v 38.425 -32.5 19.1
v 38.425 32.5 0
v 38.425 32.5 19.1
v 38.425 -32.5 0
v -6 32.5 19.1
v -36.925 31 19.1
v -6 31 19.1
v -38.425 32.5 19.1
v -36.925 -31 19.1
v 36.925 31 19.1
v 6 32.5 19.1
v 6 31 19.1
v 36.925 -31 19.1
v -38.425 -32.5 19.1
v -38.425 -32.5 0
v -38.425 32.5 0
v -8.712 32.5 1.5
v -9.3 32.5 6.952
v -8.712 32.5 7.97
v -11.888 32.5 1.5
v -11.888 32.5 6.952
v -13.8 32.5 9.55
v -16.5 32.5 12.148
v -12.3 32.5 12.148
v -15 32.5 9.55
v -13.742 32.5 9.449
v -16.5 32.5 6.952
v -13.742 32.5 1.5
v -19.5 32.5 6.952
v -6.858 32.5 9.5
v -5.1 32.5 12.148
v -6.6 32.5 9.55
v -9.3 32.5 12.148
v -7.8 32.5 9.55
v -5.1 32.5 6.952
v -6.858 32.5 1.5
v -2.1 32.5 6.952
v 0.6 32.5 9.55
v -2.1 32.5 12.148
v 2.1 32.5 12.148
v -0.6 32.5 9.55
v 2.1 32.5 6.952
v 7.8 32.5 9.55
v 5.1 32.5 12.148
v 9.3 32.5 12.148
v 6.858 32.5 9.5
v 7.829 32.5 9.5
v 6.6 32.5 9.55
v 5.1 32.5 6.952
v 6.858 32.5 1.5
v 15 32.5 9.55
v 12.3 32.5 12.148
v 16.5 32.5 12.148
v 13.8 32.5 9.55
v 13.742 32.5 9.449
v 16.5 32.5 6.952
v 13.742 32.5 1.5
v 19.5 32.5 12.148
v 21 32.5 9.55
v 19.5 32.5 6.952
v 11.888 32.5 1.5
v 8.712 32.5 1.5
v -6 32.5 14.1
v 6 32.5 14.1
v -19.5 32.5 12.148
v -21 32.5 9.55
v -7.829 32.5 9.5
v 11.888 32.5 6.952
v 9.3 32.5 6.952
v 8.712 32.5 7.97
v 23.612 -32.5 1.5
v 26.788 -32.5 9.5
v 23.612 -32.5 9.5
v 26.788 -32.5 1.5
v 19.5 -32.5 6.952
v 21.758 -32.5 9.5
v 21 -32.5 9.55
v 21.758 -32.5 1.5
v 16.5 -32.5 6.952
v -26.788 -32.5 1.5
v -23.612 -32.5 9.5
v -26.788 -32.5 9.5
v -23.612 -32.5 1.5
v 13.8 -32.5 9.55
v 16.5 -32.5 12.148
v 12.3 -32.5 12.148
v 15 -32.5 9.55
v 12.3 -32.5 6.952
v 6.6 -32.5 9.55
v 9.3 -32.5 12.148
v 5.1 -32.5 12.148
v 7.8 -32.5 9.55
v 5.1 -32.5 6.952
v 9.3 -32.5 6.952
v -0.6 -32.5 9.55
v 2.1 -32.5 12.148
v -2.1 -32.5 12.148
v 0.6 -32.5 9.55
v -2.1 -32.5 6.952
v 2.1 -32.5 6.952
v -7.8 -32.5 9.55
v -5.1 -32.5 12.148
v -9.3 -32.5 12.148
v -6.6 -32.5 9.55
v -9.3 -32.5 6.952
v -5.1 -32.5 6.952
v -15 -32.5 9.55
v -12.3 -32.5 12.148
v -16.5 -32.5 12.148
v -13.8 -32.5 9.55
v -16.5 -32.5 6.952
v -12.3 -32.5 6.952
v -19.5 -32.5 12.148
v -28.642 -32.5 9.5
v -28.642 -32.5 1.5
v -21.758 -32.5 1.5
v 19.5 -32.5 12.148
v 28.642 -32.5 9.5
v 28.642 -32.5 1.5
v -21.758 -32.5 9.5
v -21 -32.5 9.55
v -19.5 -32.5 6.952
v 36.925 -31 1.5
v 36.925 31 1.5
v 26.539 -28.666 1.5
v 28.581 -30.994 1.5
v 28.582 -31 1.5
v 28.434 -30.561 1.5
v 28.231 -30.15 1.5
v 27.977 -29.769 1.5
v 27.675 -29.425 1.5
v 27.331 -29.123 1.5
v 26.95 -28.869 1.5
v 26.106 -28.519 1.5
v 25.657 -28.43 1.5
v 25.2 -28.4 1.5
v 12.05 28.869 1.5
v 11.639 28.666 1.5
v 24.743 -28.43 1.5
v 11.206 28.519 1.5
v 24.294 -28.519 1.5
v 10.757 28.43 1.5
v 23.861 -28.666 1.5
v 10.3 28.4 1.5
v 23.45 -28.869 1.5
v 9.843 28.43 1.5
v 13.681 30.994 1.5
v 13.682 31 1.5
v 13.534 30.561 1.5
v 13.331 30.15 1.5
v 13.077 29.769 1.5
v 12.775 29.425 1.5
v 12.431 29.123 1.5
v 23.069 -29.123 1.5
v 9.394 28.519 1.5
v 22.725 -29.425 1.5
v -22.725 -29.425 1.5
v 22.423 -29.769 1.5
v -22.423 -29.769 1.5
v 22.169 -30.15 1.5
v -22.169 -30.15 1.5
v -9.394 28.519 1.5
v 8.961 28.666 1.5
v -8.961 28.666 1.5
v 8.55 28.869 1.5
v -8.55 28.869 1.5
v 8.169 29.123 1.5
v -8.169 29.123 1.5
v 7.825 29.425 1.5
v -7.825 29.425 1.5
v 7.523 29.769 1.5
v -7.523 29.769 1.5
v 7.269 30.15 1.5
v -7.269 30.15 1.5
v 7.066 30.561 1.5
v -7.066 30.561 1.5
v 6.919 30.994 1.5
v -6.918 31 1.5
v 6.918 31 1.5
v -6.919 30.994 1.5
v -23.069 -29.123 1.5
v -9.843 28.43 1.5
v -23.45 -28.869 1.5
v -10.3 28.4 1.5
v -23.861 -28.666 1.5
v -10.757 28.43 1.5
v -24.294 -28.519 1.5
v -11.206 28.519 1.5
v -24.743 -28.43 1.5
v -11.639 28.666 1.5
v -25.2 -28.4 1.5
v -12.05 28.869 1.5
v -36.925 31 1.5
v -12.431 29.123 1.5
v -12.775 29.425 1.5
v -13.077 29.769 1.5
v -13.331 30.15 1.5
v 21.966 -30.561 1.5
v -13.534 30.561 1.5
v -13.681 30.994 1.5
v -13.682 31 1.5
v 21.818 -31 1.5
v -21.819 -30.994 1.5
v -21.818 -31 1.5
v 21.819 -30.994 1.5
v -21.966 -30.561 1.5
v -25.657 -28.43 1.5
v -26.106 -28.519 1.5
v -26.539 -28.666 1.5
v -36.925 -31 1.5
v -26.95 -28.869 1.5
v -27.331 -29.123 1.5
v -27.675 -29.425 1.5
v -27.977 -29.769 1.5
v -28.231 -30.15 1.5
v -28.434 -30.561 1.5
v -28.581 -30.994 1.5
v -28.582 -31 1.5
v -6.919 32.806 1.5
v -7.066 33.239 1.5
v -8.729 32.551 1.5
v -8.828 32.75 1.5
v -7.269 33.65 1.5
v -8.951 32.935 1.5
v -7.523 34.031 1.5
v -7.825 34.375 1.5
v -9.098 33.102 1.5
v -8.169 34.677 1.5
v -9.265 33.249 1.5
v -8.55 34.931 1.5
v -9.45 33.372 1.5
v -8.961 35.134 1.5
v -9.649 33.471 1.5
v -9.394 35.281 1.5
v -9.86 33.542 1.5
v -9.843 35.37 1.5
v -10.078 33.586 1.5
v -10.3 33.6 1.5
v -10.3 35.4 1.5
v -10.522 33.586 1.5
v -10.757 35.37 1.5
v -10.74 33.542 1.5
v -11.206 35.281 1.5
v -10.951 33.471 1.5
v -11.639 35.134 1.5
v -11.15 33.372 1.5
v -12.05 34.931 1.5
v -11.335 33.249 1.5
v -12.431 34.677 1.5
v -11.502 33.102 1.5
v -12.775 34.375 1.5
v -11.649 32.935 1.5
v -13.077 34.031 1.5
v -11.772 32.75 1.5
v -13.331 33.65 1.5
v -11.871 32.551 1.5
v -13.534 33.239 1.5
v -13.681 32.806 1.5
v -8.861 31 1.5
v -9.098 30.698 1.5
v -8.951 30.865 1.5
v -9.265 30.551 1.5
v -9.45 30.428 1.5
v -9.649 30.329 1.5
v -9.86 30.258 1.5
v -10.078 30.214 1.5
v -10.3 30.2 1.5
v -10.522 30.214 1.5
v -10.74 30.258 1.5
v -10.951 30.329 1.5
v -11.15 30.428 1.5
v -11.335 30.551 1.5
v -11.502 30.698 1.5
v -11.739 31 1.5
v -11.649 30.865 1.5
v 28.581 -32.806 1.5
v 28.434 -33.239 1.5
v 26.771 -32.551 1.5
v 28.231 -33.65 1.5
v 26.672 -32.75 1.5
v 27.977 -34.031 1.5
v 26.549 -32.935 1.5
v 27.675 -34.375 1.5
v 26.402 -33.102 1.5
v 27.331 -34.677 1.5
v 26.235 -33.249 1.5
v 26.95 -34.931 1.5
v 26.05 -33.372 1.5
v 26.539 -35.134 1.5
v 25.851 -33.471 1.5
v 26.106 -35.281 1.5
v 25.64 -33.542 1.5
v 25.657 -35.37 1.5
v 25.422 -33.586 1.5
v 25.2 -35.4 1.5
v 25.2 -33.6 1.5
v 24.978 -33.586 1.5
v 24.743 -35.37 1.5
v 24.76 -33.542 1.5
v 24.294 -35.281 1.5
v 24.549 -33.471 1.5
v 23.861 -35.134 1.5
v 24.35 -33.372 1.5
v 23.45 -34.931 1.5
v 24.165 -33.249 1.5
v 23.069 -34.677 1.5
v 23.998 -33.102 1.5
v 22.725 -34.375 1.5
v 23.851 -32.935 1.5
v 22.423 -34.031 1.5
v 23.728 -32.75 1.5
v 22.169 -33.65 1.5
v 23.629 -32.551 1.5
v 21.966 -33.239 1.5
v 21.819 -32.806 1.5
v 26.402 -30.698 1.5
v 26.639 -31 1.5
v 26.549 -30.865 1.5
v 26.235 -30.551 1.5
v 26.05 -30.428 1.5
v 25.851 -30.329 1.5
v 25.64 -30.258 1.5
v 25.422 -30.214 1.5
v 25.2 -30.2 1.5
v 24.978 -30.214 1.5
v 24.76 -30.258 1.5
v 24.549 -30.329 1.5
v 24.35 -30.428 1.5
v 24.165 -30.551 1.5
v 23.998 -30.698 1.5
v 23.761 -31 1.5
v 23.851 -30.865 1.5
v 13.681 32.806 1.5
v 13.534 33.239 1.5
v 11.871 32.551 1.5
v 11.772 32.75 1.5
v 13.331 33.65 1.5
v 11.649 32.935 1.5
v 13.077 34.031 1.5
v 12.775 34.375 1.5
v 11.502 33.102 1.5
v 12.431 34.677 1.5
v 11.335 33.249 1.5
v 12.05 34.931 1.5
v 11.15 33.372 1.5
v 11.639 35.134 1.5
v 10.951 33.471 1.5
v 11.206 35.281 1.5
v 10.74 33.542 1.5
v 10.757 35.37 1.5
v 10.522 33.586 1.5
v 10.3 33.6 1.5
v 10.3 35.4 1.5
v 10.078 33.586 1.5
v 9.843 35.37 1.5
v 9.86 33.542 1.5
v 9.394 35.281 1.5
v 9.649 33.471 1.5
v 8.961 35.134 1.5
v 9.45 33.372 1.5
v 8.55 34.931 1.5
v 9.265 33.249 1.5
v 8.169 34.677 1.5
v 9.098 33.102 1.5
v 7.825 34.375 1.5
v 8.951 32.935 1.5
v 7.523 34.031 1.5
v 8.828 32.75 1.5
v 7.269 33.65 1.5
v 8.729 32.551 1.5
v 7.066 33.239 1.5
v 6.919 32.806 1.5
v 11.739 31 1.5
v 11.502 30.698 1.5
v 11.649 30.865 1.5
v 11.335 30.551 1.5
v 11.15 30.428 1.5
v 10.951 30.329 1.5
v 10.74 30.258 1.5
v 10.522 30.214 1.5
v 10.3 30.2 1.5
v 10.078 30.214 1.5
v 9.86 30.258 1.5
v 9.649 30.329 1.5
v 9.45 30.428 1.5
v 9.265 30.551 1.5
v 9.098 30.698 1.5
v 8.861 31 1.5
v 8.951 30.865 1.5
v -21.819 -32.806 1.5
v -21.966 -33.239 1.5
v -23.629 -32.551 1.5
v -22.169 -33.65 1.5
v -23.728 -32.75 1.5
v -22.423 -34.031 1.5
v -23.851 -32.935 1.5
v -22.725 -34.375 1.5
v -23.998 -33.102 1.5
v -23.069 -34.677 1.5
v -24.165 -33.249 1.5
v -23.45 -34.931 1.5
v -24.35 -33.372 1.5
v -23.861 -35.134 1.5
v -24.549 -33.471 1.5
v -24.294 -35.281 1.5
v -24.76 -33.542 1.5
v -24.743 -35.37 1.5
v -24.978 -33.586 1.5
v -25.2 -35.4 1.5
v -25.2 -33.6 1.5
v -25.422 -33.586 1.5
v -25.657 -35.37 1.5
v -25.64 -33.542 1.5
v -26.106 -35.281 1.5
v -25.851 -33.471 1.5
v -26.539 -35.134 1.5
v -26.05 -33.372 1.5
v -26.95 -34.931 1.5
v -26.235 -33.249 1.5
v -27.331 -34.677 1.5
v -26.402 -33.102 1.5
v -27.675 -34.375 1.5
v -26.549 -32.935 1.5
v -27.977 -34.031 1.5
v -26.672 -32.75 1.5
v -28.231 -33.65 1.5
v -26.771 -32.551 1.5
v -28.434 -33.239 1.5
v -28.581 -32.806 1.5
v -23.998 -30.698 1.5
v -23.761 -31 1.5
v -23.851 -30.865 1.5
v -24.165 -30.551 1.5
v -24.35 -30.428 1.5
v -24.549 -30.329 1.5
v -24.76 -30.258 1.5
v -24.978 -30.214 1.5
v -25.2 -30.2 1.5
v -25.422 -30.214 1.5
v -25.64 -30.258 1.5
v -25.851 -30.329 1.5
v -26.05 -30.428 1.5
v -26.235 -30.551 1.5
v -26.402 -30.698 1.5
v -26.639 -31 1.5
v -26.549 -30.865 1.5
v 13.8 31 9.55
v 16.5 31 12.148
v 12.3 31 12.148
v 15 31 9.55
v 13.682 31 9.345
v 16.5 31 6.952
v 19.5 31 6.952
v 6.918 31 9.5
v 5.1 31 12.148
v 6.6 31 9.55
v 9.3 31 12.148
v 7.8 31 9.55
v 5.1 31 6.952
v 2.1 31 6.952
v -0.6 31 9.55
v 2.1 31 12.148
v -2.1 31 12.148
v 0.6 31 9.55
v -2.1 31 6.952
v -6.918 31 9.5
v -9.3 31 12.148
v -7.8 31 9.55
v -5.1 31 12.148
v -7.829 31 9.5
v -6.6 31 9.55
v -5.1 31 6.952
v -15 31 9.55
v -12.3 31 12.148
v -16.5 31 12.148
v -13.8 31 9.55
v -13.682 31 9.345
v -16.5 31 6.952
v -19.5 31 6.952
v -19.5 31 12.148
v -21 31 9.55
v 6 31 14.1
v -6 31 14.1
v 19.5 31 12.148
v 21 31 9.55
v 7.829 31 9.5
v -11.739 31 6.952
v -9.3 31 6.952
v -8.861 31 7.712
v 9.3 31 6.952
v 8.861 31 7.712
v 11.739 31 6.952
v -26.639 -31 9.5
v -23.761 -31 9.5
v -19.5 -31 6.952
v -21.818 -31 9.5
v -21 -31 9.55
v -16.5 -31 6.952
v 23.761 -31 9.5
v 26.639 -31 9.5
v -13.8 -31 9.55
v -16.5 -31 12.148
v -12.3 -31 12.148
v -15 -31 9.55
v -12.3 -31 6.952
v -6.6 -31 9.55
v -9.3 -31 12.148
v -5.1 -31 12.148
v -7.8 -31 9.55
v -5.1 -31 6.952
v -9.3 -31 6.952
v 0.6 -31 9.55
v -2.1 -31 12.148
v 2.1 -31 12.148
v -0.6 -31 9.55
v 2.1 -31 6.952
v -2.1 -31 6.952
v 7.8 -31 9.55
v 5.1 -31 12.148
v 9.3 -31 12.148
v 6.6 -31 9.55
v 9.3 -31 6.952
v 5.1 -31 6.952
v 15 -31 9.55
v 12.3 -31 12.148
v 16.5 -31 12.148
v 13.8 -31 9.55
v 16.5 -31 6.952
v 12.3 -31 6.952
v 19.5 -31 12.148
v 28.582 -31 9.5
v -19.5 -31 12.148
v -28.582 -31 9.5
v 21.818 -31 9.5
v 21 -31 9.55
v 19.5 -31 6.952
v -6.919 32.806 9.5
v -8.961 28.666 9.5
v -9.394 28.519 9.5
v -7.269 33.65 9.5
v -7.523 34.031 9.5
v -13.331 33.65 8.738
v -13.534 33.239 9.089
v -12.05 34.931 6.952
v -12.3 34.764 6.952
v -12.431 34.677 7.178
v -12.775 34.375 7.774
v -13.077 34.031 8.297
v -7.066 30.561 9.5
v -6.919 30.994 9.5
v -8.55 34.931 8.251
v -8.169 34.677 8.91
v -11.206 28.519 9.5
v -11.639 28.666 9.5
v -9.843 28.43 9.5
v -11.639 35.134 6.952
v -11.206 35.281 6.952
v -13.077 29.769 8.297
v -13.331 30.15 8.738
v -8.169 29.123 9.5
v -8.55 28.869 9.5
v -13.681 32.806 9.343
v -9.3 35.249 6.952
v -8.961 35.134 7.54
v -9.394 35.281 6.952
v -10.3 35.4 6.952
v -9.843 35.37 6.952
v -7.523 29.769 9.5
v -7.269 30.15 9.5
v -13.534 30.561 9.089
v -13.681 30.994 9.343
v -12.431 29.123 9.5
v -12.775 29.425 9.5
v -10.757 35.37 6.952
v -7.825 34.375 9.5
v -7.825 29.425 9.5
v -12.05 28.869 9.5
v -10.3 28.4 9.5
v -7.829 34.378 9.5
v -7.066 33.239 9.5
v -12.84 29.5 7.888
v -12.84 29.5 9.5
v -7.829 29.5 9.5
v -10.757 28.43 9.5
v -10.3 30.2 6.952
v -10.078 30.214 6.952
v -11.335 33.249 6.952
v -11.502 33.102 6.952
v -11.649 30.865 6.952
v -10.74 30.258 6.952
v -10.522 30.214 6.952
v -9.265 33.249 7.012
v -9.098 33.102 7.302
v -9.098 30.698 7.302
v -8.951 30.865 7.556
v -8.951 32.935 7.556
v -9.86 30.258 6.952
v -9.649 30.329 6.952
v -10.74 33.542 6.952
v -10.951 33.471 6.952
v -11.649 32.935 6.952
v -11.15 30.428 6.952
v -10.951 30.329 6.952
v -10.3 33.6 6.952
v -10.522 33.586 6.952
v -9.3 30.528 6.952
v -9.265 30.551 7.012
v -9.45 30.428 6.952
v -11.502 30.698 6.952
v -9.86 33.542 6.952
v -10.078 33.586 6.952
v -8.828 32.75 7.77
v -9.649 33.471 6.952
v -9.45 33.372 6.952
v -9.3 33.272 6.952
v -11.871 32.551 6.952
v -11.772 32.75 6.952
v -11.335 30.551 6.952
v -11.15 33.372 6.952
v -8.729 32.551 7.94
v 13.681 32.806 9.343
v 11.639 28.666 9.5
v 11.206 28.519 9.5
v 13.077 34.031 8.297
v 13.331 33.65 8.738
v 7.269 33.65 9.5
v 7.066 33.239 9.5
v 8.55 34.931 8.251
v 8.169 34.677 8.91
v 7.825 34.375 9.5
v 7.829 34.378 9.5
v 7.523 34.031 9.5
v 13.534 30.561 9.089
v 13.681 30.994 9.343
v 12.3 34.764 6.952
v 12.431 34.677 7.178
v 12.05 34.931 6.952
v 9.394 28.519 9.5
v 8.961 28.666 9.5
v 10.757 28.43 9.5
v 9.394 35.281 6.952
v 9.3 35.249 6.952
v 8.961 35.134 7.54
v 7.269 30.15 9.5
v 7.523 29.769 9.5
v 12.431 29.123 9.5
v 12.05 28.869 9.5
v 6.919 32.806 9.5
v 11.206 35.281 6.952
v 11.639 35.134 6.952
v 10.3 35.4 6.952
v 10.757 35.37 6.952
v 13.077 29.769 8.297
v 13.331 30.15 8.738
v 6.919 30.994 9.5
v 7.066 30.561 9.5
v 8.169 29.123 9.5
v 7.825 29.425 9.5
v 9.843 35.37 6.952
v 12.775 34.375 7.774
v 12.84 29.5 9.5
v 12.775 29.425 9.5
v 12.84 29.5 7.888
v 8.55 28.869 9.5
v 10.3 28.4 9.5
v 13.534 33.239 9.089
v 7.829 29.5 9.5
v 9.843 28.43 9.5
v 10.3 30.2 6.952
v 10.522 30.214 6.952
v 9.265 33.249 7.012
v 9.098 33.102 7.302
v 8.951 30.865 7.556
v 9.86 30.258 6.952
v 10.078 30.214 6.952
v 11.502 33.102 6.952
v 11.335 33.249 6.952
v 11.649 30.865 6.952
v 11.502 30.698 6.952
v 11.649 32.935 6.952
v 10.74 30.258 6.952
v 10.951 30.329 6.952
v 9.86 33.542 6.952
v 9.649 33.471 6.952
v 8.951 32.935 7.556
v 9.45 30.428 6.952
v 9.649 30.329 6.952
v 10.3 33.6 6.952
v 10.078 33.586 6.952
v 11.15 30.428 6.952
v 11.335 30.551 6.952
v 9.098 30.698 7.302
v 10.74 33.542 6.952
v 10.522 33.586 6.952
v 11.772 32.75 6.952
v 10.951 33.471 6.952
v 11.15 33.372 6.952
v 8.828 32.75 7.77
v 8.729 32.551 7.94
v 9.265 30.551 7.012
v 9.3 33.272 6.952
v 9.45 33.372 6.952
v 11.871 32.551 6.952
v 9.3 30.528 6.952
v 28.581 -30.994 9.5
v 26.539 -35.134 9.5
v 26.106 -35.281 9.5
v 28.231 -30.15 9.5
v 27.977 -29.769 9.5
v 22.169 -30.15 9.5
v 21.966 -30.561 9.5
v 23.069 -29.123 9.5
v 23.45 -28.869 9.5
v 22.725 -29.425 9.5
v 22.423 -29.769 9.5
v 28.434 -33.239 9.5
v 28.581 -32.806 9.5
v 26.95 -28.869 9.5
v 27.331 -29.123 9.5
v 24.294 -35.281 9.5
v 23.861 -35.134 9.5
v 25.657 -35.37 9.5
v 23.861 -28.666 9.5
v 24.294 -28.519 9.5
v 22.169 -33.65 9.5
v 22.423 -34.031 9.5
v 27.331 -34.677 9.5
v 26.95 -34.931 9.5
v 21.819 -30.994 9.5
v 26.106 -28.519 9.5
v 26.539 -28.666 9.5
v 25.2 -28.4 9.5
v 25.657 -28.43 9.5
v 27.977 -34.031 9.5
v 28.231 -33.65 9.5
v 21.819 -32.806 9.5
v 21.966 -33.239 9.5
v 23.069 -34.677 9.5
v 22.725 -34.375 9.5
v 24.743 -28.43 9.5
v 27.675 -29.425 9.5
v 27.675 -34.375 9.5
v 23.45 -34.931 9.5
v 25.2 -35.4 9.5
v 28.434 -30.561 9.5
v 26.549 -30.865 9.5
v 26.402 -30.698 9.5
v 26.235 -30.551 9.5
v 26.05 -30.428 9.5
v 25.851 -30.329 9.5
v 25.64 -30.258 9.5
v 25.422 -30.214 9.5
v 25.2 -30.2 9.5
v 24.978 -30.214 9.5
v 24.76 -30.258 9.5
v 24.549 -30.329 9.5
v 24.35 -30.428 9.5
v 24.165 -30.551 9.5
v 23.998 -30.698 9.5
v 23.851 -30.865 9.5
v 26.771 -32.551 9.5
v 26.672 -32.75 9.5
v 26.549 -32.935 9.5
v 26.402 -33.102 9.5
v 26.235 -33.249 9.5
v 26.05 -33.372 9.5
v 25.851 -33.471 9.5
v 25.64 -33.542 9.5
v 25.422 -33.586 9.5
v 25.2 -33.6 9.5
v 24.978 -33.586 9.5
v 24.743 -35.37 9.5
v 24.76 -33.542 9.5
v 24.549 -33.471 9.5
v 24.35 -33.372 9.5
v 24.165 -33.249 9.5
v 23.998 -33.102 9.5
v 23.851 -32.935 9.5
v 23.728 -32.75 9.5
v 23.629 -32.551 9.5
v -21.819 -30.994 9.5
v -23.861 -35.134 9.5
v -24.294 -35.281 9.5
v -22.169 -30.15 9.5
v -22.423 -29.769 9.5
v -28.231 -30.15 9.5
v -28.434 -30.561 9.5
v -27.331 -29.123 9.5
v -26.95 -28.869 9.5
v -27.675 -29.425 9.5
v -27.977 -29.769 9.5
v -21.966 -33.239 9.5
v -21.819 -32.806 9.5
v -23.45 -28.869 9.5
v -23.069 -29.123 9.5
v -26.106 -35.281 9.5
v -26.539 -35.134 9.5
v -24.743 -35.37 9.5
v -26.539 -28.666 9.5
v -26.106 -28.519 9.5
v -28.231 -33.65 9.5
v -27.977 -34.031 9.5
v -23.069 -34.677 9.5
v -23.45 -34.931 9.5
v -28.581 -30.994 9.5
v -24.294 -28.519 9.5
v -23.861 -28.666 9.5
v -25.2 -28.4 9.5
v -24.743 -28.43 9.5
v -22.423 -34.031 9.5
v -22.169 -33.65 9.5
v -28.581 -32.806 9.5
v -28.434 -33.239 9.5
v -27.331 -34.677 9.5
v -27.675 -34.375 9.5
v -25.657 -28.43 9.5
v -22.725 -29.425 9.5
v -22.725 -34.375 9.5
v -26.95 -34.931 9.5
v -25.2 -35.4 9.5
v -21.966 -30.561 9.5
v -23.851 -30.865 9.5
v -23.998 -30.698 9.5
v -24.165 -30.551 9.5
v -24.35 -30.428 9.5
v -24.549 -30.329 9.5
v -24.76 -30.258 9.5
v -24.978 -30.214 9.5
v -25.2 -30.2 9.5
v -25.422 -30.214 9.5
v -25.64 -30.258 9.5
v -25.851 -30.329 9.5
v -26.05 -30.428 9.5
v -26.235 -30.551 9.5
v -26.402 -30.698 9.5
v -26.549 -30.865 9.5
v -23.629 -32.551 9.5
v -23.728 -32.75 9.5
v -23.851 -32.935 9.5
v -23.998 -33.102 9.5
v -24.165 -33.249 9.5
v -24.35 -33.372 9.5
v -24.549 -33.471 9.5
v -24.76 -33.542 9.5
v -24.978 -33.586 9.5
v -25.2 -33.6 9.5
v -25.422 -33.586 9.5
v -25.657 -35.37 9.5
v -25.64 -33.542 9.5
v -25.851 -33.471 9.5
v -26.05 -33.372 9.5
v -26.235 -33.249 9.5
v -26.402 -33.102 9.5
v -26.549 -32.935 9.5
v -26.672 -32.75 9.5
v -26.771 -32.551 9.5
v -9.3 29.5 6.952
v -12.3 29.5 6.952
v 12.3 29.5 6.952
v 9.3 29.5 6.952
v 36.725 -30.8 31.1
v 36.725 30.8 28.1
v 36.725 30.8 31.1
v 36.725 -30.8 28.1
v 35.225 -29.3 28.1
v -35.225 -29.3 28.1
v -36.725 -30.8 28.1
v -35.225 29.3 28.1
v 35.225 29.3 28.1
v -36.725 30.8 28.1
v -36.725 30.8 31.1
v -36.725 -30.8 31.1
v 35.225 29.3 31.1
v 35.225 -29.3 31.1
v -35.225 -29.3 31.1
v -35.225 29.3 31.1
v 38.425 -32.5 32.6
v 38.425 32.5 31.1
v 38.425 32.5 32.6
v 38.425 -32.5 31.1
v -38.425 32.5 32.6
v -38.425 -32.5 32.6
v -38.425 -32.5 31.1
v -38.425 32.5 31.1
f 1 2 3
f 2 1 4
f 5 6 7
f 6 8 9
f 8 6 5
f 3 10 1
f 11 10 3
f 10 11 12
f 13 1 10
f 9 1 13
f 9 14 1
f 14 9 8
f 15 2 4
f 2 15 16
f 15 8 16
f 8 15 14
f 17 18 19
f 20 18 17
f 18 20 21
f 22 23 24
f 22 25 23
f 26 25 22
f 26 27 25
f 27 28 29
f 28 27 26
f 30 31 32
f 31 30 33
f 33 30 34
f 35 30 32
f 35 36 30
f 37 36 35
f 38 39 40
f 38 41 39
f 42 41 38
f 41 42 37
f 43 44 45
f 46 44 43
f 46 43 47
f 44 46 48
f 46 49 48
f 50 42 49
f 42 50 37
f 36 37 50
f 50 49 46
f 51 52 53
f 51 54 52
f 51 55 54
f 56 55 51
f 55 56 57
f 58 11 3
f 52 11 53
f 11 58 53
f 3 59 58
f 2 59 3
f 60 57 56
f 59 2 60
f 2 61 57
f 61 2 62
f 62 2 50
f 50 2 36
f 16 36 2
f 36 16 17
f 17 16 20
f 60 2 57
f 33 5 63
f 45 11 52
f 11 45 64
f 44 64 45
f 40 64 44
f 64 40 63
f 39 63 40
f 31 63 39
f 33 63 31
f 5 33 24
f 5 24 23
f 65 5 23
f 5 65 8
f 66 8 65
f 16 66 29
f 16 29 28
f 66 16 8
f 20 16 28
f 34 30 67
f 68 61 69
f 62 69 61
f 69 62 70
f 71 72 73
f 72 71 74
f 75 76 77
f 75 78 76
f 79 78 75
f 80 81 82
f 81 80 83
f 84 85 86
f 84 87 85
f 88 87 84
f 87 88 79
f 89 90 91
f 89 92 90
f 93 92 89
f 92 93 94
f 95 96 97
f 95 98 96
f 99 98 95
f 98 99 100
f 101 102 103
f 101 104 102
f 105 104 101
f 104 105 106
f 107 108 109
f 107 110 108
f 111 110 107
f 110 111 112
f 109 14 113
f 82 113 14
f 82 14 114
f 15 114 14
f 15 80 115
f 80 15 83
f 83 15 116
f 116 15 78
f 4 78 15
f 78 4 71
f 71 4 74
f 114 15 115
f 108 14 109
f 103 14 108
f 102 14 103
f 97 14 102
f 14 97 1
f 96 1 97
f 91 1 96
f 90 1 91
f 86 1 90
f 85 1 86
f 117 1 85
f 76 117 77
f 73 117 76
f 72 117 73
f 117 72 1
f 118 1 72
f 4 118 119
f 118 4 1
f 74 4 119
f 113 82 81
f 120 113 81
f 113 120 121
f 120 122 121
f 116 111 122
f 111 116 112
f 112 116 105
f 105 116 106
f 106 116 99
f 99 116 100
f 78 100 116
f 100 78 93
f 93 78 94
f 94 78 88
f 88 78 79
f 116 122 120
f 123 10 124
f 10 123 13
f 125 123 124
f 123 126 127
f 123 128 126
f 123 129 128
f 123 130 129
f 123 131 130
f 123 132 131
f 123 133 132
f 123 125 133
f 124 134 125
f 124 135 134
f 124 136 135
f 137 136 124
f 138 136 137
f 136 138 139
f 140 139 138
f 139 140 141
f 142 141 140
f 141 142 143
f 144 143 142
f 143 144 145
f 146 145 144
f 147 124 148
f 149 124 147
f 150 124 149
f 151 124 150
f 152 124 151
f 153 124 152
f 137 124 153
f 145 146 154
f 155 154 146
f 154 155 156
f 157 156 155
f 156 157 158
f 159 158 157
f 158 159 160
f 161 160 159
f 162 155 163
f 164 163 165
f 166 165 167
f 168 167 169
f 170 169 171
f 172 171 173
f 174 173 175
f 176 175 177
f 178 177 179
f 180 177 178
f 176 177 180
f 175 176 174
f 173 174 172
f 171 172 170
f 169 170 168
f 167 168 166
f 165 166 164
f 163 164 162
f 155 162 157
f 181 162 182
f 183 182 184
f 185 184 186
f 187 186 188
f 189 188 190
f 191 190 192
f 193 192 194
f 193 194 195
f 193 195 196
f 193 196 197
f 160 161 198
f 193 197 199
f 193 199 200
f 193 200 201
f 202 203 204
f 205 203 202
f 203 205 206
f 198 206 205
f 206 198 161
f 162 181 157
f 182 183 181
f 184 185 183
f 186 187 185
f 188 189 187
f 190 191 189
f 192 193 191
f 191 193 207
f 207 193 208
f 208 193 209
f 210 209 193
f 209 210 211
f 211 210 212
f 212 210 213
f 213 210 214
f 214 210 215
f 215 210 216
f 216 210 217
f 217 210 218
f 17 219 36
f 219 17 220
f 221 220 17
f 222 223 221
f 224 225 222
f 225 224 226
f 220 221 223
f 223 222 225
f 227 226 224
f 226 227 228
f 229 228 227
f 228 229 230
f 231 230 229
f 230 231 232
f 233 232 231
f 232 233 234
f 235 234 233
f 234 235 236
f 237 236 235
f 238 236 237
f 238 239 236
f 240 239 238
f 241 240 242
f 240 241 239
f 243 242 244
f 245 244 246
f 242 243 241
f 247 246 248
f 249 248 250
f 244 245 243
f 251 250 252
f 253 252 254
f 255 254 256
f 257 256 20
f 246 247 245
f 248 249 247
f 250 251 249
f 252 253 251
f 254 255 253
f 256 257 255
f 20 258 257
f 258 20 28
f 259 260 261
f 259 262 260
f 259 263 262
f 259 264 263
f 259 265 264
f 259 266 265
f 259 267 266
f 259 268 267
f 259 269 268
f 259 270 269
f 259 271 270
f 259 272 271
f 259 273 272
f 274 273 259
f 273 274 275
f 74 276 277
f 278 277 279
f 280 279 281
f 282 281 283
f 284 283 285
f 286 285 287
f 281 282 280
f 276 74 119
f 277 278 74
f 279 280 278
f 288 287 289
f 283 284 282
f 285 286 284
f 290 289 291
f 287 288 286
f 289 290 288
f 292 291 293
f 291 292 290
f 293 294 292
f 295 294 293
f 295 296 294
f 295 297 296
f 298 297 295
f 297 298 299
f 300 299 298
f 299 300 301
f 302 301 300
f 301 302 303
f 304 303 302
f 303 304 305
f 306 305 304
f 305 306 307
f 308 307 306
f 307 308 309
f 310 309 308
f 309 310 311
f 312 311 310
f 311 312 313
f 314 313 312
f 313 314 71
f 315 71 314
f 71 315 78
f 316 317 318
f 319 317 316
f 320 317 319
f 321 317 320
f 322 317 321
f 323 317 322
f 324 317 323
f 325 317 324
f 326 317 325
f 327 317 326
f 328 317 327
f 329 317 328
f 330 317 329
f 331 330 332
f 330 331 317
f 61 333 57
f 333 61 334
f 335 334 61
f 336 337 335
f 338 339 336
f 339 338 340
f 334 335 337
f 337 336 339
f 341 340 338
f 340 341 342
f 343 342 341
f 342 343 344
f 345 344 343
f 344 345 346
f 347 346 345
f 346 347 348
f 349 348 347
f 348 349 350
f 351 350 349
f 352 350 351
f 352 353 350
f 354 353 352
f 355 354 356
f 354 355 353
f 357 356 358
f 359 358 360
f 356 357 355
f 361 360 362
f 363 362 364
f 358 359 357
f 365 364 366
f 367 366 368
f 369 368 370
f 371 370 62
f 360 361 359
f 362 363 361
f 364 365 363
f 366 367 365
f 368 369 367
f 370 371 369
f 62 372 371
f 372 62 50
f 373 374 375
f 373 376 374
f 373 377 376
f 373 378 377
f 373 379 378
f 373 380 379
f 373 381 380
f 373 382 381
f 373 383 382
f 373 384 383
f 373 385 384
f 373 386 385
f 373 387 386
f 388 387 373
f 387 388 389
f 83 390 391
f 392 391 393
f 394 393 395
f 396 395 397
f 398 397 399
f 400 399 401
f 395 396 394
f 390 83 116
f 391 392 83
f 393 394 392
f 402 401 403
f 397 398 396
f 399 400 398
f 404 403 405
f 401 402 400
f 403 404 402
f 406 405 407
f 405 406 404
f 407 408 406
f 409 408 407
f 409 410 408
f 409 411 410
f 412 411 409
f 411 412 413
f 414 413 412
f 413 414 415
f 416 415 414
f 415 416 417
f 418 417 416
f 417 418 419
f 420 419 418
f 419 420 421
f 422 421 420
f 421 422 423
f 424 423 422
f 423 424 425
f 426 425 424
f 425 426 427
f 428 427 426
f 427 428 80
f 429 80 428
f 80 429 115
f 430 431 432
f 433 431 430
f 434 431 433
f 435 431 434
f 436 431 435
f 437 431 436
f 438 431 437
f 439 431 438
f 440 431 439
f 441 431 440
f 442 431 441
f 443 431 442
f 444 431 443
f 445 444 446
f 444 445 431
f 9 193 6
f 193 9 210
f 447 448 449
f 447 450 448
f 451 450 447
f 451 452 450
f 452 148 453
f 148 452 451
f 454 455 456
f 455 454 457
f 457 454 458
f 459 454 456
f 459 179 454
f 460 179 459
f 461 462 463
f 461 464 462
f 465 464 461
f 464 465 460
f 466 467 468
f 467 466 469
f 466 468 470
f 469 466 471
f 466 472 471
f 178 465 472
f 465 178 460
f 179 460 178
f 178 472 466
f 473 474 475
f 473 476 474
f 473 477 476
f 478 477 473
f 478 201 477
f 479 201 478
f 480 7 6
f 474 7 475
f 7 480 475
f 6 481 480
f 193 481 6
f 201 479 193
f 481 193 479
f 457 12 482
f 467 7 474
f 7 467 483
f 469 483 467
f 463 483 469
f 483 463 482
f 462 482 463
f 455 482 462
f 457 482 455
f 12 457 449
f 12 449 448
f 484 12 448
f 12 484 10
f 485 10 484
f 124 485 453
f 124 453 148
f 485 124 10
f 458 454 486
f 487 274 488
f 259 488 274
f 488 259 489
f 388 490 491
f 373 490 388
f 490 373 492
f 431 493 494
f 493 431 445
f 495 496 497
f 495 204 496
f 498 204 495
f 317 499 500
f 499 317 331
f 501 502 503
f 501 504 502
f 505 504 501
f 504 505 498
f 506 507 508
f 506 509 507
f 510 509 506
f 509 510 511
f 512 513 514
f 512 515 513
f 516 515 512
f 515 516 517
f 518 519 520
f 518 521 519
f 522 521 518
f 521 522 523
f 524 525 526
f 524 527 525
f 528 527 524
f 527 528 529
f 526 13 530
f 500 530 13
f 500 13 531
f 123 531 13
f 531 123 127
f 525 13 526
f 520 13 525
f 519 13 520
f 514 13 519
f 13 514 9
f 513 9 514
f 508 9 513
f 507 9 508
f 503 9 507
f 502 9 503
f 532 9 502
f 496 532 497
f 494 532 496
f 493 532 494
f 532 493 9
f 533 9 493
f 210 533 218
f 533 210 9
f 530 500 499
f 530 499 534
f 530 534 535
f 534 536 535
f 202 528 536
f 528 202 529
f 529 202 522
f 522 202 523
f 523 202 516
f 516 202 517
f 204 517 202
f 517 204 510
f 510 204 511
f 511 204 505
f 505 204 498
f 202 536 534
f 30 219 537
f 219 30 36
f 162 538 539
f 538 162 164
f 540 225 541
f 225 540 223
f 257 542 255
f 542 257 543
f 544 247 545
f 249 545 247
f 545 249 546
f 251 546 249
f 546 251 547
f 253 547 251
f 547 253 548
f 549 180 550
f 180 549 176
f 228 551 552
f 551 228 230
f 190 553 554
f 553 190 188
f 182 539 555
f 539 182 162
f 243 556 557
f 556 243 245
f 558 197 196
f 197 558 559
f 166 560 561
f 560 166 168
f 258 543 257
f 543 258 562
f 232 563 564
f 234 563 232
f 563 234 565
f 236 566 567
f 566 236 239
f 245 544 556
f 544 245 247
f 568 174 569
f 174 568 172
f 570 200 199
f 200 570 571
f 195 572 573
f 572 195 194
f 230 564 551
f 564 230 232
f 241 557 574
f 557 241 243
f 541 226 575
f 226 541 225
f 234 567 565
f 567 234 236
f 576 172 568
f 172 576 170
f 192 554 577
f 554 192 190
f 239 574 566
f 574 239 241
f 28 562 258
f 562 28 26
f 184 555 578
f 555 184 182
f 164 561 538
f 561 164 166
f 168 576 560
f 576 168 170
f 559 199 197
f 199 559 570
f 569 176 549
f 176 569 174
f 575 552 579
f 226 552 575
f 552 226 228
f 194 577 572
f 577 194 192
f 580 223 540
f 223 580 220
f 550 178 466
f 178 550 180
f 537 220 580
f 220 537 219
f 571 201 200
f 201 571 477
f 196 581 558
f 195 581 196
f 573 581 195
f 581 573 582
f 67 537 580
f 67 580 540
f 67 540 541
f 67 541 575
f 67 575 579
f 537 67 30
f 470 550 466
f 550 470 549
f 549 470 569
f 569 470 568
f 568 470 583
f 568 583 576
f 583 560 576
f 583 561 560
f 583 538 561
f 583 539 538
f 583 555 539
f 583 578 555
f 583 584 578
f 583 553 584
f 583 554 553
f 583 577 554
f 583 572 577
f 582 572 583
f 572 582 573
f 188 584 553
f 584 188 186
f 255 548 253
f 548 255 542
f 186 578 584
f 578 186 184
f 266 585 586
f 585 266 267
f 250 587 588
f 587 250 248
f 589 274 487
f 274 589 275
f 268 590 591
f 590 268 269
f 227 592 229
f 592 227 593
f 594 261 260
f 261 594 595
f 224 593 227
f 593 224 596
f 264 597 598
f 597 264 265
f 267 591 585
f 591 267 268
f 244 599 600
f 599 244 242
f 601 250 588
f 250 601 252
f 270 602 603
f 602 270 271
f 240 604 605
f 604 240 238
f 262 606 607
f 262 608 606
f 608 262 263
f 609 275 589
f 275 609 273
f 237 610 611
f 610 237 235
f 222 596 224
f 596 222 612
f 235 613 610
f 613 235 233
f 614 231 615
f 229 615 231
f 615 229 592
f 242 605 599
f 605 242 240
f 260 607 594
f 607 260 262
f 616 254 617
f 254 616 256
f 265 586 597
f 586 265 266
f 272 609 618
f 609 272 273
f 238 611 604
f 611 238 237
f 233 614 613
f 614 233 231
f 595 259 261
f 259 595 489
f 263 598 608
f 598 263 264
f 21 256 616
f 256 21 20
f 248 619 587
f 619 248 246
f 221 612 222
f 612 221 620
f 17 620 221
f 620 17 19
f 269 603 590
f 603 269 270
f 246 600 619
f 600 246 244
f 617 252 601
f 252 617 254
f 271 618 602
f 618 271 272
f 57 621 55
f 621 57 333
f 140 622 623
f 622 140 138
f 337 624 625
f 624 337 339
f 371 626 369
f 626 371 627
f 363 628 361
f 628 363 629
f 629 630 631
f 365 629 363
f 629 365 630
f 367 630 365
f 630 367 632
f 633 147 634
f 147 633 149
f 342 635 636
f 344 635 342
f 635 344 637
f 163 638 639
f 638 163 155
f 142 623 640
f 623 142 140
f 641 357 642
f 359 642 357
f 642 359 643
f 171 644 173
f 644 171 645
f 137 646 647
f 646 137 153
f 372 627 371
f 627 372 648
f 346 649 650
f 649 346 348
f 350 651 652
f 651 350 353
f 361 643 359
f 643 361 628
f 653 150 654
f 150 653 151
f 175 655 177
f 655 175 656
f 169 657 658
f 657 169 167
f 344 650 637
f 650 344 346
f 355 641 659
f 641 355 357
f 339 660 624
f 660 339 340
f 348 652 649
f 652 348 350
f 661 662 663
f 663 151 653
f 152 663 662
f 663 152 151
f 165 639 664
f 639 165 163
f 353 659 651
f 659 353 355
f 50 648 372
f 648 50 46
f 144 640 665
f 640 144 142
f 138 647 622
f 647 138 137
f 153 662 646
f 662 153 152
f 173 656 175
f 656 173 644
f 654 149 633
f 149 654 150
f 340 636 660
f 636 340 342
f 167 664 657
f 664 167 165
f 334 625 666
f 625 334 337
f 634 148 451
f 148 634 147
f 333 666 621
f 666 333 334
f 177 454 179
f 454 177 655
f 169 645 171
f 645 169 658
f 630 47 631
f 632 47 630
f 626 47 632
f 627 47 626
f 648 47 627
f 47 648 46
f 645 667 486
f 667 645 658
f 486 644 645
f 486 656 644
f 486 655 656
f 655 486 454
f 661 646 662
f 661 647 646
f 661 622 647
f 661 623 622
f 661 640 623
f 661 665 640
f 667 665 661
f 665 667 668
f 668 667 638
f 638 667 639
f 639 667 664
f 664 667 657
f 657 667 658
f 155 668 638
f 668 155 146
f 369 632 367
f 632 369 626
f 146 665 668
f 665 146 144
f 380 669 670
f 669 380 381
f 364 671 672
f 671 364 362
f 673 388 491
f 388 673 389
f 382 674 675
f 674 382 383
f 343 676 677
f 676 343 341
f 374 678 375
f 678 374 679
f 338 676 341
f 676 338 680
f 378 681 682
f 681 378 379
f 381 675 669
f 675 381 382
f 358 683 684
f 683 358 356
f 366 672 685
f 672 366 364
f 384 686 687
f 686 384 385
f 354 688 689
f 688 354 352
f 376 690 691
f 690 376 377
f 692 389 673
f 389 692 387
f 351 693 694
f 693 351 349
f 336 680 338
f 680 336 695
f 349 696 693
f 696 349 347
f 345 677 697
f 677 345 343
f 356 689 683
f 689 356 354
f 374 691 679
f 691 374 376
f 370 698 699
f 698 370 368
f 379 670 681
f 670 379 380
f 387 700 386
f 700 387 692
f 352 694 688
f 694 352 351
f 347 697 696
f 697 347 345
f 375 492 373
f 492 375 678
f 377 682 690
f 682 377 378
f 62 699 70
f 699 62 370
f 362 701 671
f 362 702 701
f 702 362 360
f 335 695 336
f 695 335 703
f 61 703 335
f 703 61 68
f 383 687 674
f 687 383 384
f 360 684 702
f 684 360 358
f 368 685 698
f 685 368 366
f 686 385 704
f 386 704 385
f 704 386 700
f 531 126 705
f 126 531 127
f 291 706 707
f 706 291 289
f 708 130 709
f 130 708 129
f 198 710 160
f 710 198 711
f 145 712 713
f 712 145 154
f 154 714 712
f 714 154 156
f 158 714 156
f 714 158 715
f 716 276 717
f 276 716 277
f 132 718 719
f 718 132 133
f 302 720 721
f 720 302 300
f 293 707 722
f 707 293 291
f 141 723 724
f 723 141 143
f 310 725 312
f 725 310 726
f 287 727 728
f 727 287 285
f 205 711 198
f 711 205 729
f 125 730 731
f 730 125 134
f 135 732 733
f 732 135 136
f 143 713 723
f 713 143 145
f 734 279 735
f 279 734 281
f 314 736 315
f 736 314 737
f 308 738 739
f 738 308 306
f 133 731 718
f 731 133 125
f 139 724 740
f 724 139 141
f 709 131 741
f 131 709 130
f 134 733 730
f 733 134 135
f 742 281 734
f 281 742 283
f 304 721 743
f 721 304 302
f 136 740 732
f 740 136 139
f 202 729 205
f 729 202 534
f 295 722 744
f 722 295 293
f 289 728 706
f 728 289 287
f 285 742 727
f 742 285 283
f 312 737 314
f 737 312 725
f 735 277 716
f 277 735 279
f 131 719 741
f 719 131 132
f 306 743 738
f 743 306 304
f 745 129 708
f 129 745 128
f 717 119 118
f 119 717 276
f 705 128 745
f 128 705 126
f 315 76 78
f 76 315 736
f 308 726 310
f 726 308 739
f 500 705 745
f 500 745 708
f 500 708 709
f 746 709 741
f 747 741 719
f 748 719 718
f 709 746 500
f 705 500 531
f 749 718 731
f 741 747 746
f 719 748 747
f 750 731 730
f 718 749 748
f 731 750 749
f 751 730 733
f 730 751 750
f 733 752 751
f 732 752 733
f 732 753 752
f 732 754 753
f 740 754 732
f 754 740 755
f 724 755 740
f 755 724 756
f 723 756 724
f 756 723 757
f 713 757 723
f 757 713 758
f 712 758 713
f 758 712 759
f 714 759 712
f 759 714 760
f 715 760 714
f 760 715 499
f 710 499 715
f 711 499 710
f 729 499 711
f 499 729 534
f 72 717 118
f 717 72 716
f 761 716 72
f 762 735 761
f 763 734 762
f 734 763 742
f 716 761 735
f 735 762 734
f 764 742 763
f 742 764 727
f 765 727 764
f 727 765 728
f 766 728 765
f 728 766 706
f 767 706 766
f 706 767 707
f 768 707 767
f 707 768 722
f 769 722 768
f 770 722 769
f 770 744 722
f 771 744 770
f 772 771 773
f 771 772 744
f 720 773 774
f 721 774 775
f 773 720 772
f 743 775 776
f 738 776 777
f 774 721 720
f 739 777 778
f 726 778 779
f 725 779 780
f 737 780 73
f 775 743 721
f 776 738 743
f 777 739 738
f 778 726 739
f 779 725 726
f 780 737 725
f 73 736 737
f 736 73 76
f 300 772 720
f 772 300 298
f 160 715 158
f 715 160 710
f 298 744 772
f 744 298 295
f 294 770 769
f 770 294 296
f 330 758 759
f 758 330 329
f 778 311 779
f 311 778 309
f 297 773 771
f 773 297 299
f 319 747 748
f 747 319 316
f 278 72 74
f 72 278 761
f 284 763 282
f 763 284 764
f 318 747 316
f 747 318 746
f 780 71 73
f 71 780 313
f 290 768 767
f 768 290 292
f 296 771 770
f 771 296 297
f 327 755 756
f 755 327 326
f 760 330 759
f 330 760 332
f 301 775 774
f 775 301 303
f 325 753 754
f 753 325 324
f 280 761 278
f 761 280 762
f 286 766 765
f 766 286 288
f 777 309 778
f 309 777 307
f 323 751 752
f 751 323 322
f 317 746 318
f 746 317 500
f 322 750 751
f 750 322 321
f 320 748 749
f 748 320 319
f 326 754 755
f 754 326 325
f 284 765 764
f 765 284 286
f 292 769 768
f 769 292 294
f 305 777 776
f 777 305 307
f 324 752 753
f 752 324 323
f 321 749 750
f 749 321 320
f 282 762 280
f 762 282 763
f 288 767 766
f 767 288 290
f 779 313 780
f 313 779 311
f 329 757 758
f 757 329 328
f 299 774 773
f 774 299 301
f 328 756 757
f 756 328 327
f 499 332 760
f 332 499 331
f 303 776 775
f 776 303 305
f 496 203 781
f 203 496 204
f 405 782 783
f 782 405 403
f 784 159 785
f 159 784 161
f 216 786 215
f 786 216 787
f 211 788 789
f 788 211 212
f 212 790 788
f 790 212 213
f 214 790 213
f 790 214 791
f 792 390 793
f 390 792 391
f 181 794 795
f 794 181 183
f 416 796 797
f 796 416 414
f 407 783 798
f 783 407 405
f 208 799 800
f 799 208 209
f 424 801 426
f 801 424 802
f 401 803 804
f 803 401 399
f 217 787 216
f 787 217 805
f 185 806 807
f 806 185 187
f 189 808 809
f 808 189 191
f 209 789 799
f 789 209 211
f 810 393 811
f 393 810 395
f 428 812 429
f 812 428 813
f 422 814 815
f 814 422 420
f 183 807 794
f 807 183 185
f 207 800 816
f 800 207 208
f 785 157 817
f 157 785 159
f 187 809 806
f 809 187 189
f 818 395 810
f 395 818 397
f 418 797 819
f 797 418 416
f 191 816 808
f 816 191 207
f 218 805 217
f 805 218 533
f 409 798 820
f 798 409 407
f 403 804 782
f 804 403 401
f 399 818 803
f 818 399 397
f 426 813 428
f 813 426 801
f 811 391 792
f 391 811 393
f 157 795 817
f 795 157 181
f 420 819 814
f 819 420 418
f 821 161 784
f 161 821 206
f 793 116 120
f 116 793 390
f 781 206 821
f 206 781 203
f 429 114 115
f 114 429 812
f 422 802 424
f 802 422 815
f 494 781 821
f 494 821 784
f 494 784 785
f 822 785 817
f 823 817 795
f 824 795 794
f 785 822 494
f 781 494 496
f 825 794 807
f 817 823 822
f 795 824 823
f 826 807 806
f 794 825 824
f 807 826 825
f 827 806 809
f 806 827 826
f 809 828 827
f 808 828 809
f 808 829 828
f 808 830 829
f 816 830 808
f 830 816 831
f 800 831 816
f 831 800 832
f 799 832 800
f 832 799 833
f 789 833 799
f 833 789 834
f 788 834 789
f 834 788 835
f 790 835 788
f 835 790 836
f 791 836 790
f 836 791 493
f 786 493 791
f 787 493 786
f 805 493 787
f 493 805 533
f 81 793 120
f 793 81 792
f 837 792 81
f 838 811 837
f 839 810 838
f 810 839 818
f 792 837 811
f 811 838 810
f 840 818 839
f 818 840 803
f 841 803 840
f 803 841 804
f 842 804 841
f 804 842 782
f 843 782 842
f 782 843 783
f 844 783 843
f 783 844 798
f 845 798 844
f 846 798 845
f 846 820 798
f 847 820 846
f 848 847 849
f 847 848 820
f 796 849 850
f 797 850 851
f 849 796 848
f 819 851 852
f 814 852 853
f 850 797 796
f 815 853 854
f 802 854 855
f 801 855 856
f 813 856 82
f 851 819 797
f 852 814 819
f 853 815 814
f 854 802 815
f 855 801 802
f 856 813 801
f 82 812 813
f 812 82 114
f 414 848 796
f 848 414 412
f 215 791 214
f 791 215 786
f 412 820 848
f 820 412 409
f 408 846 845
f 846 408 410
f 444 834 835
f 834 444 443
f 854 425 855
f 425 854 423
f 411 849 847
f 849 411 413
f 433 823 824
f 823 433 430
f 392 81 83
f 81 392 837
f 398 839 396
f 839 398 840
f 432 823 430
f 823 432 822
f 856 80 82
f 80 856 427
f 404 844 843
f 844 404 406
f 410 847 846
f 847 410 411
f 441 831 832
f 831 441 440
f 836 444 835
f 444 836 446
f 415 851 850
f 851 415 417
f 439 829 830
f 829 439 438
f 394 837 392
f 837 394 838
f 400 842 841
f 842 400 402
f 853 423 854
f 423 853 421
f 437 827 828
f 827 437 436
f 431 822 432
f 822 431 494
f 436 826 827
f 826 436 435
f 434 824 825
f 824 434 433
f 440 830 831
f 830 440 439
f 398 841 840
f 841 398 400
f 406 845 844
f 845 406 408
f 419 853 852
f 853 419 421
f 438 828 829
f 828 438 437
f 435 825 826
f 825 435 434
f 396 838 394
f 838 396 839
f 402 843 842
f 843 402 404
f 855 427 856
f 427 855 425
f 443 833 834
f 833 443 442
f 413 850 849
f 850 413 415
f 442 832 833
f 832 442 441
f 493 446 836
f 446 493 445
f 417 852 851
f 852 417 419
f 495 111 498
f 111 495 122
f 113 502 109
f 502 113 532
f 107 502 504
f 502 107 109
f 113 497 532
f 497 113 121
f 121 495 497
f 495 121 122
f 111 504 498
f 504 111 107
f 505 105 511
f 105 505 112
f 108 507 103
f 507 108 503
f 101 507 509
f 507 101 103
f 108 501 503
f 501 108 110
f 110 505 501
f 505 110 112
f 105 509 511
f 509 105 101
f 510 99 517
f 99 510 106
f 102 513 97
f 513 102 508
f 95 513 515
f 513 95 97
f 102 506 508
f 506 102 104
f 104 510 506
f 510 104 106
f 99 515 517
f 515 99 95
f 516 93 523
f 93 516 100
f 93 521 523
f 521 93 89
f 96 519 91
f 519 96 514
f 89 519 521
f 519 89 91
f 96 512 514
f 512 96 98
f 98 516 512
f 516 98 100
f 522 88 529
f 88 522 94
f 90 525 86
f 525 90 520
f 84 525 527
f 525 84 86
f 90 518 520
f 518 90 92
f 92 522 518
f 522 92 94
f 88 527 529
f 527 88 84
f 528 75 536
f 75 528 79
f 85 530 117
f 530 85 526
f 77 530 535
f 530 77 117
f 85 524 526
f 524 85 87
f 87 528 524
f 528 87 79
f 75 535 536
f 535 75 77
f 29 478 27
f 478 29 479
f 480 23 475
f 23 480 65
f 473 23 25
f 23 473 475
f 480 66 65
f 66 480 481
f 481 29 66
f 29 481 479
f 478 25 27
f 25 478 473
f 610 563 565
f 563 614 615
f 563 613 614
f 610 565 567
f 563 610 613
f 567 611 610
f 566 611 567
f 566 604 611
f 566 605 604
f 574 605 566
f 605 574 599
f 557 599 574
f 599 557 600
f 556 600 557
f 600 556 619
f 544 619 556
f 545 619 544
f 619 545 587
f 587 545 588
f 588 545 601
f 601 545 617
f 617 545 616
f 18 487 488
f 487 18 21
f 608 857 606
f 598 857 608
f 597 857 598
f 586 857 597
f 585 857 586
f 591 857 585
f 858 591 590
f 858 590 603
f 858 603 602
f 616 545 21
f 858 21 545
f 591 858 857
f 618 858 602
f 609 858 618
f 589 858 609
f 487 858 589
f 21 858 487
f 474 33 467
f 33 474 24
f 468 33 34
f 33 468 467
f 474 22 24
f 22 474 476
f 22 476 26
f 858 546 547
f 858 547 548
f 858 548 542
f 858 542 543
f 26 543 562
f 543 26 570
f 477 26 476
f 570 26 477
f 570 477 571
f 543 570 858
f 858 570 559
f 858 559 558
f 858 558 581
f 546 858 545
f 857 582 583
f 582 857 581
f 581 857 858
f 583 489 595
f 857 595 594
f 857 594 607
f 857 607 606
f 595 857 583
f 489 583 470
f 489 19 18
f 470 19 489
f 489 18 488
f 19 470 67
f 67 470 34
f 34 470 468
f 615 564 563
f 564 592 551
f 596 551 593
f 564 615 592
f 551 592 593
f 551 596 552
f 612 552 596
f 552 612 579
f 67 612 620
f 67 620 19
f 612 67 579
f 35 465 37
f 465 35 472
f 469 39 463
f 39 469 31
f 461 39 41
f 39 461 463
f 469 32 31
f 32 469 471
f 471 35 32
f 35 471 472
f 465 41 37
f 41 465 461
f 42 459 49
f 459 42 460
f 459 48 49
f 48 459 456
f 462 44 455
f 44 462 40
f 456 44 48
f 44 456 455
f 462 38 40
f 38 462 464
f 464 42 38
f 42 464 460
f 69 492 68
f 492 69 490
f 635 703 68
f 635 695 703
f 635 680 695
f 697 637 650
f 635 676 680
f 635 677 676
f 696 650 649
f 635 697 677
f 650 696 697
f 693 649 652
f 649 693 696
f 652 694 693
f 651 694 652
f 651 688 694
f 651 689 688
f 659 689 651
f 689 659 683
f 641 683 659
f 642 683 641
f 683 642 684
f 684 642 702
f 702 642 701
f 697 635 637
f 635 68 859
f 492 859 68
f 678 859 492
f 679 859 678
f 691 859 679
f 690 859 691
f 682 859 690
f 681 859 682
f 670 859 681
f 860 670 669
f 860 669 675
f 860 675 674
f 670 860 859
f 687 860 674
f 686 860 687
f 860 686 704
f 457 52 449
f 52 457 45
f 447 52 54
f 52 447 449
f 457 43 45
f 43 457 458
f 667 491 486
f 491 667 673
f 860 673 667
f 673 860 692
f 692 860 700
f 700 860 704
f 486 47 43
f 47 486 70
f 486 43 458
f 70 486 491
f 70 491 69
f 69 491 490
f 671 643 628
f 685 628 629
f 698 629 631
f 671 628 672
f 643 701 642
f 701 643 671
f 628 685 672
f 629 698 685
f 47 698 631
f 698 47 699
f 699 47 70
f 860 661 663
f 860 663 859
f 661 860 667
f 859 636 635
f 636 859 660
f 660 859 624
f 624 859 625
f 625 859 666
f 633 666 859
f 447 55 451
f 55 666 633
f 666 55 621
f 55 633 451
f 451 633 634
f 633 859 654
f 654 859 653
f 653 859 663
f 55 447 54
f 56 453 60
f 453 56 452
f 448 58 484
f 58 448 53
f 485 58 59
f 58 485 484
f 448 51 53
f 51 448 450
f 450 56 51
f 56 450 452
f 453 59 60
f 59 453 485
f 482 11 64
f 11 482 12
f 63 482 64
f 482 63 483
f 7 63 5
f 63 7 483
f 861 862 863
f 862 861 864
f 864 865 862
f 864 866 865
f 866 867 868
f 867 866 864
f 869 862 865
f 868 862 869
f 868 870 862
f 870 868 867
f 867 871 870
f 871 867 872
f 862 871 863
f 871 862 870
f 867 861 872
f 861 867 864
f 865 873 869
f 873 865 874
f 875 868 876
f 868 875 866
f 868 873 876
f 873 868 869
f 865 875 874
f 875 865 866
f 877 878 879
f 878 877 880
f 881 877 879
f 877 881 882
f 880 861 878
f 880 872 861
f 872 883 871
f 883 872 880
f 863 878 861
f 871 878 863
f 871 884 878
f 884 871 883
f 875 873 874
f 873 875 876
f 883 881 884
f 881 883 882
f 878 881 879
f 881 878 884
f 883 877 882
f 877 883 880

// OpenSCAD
// ============================================================
// cargo_vera_faraday.scad  --  Rev S1 (2026-07-12)
//
// Faraday (EMI) enclosure for the CARGO-bay Vera vision/ToF/laser PCB.
// Standalone printed part (CF-PETG shell + conductive shielding: copper-tape or
// nickel-paint liner, or a 0.5 mm Al can dropped in), enclosing the trapezoidal
// Vera carrier on 4 M2.5 corner standoffs.  The camera/ToF/laser connect by JST
// jumpers (cargo variant), so the harness exits through an EMI cable slot; there
// is no sensor aperture in this enclosure (the nadir camera bezel is separate).
//
// Mates to the cargo belly on the 4 Vera bosses (cargo_sect_shell24.scad
// vera_board_bosses, VERA_HOLES) -- the tray corner bosses align to the same
// pattern.  Shield tied to PGND via a corner solder tab (SHIELD_TAB).
//
// EMI cooling: waveguide-below-cutoff honeycomb vents (6 mm cells; lambda/2 cutoff
// > 25 GHz) on two opposing side walls, matching the DUCT_CELL_D convention of the
// cape Faraday trays.  Lid is a shallow-lip EMI cover (finger-stock or gasket land).
//
// Dimensions: imperial-primary, mm in parentheses.
//   Board envelope: 2.75 x 2.28 in (69.85 x 58.0 mm), trapezoid; tray sized to bbox.
//   Wall: 0.059 in (1.5 mm).  Standoff: 0.315 in (8.0 mm).
//
// VERIFY in FreeCAD/slicer: tray fit inside the cargo bay vs door_bay_cut, GPS,
// ribs (per CLAUDE.md complex-geometry placement rule).  Run a watertight mesh
// check after any change.
//
// Author: Steve Griffing, PE(CSE), CISSP-ISSEP, CPP
//        (geometry authored by Claude Opus 4.8)
// License: CC BY 4.0 -- creativecommons.org/licenses/by/4.0
// ============================================================

$fn = 48;

// ---- Board envelope + clearances -------------------------------------------
BOARD_L   = 69.85;   // mm -- board long axis (fore-aft)
BOARD_W   = 58.0;    // mm -- board max width (aft/wide end)
CLR       =  2.0;    // mm -- board-to-wall clearance
STAND_H   =  8.0;    // mm -- standoff height (bottom-side component clearance)
TOP_CLR   =  8.0;    // mm -- above-board clearance (5 mm SoM stack + connectors)
BOARD_T   =  1.6;    // mm -- PCB thickness
WALL      =  1.5;    // mm -- tray wall

INT_L = BOARD_L + 2 * CLR;                 // internal length (~73.85)
INT_W = BOARD_W + 2 * CLR;                 // internal width  (~62.0)
INT_D = STAND_H + BOARD_T + TOP_CLR;       // internal depth  (~17.6)
EXT_L = INT_L + 2 * WALL;
EXT_W = INT_W + 2 * WALL;
EXT_D = INT_D + WALL;                      // closed floor, open top (lid separate)

// ---- Standoffs (M2.5) at the Vera corner-hole pattern ----------------------
// Board-local corner holes relative to board centre (mm): (+/-31.9, ...).
// Tray-local: board long -> Y, board width -> X.  [X, Y] offsets from tray centre.
STAND_OD   = 7.0;    // mm -- standoff OD (>= 2-wall around M2.5 insert)
STAND_BORE = 3.4;    // mm -- M2.5 heat-set insert bore
VERA_STAND = [ [-10.3,  31.9], [10.3,  31.9], [25.2, -31.9], [-25.2, -31.9] ];

// ---- EMI vents (waveguide below cutoff) ------------------------------------
VENT_CELL  = 6.0;    // mm -- honeycomb cell (lambda/2 cutoff > 25 GHz)
VENT_WALL  = 1.2;    // mm -- cell wall
VENT_ROWS  = 3;      // cells stacked vertically
VENT_COLS  = 6;      // cells along the wall

// ---- Lid EMI lip + cable slot ----------------------------------------------
LIP_H      = 3.0;    // mm -- lid lip that nests inside the tray for EMI seal
CABLE_W    = 12.0;   // mm -- harness exit slot width (JST-GH ribbon)
CABLE_H    =  5.0;   // mm -- harness exit slot height

// ----------------------------------------------------------------------------
module standoff(p) {
    translate([p[0], p[1], WALL])
    difference() {
        cylinder(h = STAND_H, d = STAND_OD);
        cylinder(h = STAND_H + 0.1, d = STAND_BORE);
    }
}

// Honeycomb vent cutter: a grid of hex cells across a wall panel.
module vent_panel() {
    dx = VENT_CELL + VENT_WALL;
    for (r = [0 : VENT_ROWS - 1])
    for (c = [0 : VENT_COLS - 1])
        translate([c * dx - (VENT_COLS - 1) * dx / 2,
                   r * dx - (VENT_ROWS - 1) * dx / 2,
                   0])
        rotate([90, 0, 0])
        cylinder(h = WALL * 4, d = VENT_CELL, center = true, $fn = 6);
}

// ----------------------------------------------------------------------------
// Module: vera_faraday_tray
//   Open-top tray: floor + 4 walls + 4 standoffs, with waveguide vents on the
//   two long side walls and a harness exit slot on one short wall.
// ----------------------------------------------------------------------------
module vera_faraday_tray() {
    difference() {
        union() {
            // 5-walled shell (closed floor, open top)
            difference() {
                translate([-EXT_L / 2, -EXT_W / 2, 0])
                    cube([EXT_L, EXT_W, EXT_D]);
                translate([-INT_L / 2, -INT_W / 2, WALL])
                    cube([INT_L, INT_W, INT_D + 1]);
            }
            for (p = VERA_STAND) standoff(p);
        }
        // waveguide vents on both long walls (at mid-height)
        translate([0, -EXT_W / 2, EXT_D / 2]) vent_panel();
        translate([0,  EXT_W / 2, EXT_D / 2]) vent_panel();
        // harness exit slot on the +Y short wall (aft), for the JST jumpers
        translate([-CABLE_W / 2, EXT_W / 2 - WALL - 0.1, EXT_D - CABLE_H])
            cube([CABLE_W, WALL + 0.2, CABLE_H + 1]);
    }
}

// ----------------------------------------------------------------------------
// Module: vera_faraday_lid
//   EMI cover with a nesting lip that seats inside the tray walls.
// ----------------------------------------------------------------------------
module vera_faraday_lid() {
    union() {
        translate([-EXT_L / 2, -EXT_W / 2, 0])
            cube([EXT_L, EXT_W, WALL]);
        // inner lip
        translate([-INT_L / 2 + 0.2, -INT_W / 2 + 0.2, -LIP_H])
        difference() {
            cube([INT_L - 0.4, INT_W - 0.4, LIP_H + 0.01]);
            translate([WALL, WALL, -0.1])
                cube([INT_L - 0.4 - 2 * WALL, INT_W - 0.4 - 2 * WALL, LIP_H + 0.2]);
        }
    }
}

// ---- Render: tray, and the lid offset for viewing --------------------------
vera_faraday_tray();
translate([0, 0, EXT_D + 12]) vera_faraday_lid();

// echo key dimensions for console verification
echo(str("Vera Faraday tray external: ", EXT_L, " x ", EXT_W, " x ", EXT_D, " mm"));
echo(str("internal: ", INT_L, " x ", INT_W, " x ", INT_D, " mm; standoffs ", STAND_H, " mm"));
